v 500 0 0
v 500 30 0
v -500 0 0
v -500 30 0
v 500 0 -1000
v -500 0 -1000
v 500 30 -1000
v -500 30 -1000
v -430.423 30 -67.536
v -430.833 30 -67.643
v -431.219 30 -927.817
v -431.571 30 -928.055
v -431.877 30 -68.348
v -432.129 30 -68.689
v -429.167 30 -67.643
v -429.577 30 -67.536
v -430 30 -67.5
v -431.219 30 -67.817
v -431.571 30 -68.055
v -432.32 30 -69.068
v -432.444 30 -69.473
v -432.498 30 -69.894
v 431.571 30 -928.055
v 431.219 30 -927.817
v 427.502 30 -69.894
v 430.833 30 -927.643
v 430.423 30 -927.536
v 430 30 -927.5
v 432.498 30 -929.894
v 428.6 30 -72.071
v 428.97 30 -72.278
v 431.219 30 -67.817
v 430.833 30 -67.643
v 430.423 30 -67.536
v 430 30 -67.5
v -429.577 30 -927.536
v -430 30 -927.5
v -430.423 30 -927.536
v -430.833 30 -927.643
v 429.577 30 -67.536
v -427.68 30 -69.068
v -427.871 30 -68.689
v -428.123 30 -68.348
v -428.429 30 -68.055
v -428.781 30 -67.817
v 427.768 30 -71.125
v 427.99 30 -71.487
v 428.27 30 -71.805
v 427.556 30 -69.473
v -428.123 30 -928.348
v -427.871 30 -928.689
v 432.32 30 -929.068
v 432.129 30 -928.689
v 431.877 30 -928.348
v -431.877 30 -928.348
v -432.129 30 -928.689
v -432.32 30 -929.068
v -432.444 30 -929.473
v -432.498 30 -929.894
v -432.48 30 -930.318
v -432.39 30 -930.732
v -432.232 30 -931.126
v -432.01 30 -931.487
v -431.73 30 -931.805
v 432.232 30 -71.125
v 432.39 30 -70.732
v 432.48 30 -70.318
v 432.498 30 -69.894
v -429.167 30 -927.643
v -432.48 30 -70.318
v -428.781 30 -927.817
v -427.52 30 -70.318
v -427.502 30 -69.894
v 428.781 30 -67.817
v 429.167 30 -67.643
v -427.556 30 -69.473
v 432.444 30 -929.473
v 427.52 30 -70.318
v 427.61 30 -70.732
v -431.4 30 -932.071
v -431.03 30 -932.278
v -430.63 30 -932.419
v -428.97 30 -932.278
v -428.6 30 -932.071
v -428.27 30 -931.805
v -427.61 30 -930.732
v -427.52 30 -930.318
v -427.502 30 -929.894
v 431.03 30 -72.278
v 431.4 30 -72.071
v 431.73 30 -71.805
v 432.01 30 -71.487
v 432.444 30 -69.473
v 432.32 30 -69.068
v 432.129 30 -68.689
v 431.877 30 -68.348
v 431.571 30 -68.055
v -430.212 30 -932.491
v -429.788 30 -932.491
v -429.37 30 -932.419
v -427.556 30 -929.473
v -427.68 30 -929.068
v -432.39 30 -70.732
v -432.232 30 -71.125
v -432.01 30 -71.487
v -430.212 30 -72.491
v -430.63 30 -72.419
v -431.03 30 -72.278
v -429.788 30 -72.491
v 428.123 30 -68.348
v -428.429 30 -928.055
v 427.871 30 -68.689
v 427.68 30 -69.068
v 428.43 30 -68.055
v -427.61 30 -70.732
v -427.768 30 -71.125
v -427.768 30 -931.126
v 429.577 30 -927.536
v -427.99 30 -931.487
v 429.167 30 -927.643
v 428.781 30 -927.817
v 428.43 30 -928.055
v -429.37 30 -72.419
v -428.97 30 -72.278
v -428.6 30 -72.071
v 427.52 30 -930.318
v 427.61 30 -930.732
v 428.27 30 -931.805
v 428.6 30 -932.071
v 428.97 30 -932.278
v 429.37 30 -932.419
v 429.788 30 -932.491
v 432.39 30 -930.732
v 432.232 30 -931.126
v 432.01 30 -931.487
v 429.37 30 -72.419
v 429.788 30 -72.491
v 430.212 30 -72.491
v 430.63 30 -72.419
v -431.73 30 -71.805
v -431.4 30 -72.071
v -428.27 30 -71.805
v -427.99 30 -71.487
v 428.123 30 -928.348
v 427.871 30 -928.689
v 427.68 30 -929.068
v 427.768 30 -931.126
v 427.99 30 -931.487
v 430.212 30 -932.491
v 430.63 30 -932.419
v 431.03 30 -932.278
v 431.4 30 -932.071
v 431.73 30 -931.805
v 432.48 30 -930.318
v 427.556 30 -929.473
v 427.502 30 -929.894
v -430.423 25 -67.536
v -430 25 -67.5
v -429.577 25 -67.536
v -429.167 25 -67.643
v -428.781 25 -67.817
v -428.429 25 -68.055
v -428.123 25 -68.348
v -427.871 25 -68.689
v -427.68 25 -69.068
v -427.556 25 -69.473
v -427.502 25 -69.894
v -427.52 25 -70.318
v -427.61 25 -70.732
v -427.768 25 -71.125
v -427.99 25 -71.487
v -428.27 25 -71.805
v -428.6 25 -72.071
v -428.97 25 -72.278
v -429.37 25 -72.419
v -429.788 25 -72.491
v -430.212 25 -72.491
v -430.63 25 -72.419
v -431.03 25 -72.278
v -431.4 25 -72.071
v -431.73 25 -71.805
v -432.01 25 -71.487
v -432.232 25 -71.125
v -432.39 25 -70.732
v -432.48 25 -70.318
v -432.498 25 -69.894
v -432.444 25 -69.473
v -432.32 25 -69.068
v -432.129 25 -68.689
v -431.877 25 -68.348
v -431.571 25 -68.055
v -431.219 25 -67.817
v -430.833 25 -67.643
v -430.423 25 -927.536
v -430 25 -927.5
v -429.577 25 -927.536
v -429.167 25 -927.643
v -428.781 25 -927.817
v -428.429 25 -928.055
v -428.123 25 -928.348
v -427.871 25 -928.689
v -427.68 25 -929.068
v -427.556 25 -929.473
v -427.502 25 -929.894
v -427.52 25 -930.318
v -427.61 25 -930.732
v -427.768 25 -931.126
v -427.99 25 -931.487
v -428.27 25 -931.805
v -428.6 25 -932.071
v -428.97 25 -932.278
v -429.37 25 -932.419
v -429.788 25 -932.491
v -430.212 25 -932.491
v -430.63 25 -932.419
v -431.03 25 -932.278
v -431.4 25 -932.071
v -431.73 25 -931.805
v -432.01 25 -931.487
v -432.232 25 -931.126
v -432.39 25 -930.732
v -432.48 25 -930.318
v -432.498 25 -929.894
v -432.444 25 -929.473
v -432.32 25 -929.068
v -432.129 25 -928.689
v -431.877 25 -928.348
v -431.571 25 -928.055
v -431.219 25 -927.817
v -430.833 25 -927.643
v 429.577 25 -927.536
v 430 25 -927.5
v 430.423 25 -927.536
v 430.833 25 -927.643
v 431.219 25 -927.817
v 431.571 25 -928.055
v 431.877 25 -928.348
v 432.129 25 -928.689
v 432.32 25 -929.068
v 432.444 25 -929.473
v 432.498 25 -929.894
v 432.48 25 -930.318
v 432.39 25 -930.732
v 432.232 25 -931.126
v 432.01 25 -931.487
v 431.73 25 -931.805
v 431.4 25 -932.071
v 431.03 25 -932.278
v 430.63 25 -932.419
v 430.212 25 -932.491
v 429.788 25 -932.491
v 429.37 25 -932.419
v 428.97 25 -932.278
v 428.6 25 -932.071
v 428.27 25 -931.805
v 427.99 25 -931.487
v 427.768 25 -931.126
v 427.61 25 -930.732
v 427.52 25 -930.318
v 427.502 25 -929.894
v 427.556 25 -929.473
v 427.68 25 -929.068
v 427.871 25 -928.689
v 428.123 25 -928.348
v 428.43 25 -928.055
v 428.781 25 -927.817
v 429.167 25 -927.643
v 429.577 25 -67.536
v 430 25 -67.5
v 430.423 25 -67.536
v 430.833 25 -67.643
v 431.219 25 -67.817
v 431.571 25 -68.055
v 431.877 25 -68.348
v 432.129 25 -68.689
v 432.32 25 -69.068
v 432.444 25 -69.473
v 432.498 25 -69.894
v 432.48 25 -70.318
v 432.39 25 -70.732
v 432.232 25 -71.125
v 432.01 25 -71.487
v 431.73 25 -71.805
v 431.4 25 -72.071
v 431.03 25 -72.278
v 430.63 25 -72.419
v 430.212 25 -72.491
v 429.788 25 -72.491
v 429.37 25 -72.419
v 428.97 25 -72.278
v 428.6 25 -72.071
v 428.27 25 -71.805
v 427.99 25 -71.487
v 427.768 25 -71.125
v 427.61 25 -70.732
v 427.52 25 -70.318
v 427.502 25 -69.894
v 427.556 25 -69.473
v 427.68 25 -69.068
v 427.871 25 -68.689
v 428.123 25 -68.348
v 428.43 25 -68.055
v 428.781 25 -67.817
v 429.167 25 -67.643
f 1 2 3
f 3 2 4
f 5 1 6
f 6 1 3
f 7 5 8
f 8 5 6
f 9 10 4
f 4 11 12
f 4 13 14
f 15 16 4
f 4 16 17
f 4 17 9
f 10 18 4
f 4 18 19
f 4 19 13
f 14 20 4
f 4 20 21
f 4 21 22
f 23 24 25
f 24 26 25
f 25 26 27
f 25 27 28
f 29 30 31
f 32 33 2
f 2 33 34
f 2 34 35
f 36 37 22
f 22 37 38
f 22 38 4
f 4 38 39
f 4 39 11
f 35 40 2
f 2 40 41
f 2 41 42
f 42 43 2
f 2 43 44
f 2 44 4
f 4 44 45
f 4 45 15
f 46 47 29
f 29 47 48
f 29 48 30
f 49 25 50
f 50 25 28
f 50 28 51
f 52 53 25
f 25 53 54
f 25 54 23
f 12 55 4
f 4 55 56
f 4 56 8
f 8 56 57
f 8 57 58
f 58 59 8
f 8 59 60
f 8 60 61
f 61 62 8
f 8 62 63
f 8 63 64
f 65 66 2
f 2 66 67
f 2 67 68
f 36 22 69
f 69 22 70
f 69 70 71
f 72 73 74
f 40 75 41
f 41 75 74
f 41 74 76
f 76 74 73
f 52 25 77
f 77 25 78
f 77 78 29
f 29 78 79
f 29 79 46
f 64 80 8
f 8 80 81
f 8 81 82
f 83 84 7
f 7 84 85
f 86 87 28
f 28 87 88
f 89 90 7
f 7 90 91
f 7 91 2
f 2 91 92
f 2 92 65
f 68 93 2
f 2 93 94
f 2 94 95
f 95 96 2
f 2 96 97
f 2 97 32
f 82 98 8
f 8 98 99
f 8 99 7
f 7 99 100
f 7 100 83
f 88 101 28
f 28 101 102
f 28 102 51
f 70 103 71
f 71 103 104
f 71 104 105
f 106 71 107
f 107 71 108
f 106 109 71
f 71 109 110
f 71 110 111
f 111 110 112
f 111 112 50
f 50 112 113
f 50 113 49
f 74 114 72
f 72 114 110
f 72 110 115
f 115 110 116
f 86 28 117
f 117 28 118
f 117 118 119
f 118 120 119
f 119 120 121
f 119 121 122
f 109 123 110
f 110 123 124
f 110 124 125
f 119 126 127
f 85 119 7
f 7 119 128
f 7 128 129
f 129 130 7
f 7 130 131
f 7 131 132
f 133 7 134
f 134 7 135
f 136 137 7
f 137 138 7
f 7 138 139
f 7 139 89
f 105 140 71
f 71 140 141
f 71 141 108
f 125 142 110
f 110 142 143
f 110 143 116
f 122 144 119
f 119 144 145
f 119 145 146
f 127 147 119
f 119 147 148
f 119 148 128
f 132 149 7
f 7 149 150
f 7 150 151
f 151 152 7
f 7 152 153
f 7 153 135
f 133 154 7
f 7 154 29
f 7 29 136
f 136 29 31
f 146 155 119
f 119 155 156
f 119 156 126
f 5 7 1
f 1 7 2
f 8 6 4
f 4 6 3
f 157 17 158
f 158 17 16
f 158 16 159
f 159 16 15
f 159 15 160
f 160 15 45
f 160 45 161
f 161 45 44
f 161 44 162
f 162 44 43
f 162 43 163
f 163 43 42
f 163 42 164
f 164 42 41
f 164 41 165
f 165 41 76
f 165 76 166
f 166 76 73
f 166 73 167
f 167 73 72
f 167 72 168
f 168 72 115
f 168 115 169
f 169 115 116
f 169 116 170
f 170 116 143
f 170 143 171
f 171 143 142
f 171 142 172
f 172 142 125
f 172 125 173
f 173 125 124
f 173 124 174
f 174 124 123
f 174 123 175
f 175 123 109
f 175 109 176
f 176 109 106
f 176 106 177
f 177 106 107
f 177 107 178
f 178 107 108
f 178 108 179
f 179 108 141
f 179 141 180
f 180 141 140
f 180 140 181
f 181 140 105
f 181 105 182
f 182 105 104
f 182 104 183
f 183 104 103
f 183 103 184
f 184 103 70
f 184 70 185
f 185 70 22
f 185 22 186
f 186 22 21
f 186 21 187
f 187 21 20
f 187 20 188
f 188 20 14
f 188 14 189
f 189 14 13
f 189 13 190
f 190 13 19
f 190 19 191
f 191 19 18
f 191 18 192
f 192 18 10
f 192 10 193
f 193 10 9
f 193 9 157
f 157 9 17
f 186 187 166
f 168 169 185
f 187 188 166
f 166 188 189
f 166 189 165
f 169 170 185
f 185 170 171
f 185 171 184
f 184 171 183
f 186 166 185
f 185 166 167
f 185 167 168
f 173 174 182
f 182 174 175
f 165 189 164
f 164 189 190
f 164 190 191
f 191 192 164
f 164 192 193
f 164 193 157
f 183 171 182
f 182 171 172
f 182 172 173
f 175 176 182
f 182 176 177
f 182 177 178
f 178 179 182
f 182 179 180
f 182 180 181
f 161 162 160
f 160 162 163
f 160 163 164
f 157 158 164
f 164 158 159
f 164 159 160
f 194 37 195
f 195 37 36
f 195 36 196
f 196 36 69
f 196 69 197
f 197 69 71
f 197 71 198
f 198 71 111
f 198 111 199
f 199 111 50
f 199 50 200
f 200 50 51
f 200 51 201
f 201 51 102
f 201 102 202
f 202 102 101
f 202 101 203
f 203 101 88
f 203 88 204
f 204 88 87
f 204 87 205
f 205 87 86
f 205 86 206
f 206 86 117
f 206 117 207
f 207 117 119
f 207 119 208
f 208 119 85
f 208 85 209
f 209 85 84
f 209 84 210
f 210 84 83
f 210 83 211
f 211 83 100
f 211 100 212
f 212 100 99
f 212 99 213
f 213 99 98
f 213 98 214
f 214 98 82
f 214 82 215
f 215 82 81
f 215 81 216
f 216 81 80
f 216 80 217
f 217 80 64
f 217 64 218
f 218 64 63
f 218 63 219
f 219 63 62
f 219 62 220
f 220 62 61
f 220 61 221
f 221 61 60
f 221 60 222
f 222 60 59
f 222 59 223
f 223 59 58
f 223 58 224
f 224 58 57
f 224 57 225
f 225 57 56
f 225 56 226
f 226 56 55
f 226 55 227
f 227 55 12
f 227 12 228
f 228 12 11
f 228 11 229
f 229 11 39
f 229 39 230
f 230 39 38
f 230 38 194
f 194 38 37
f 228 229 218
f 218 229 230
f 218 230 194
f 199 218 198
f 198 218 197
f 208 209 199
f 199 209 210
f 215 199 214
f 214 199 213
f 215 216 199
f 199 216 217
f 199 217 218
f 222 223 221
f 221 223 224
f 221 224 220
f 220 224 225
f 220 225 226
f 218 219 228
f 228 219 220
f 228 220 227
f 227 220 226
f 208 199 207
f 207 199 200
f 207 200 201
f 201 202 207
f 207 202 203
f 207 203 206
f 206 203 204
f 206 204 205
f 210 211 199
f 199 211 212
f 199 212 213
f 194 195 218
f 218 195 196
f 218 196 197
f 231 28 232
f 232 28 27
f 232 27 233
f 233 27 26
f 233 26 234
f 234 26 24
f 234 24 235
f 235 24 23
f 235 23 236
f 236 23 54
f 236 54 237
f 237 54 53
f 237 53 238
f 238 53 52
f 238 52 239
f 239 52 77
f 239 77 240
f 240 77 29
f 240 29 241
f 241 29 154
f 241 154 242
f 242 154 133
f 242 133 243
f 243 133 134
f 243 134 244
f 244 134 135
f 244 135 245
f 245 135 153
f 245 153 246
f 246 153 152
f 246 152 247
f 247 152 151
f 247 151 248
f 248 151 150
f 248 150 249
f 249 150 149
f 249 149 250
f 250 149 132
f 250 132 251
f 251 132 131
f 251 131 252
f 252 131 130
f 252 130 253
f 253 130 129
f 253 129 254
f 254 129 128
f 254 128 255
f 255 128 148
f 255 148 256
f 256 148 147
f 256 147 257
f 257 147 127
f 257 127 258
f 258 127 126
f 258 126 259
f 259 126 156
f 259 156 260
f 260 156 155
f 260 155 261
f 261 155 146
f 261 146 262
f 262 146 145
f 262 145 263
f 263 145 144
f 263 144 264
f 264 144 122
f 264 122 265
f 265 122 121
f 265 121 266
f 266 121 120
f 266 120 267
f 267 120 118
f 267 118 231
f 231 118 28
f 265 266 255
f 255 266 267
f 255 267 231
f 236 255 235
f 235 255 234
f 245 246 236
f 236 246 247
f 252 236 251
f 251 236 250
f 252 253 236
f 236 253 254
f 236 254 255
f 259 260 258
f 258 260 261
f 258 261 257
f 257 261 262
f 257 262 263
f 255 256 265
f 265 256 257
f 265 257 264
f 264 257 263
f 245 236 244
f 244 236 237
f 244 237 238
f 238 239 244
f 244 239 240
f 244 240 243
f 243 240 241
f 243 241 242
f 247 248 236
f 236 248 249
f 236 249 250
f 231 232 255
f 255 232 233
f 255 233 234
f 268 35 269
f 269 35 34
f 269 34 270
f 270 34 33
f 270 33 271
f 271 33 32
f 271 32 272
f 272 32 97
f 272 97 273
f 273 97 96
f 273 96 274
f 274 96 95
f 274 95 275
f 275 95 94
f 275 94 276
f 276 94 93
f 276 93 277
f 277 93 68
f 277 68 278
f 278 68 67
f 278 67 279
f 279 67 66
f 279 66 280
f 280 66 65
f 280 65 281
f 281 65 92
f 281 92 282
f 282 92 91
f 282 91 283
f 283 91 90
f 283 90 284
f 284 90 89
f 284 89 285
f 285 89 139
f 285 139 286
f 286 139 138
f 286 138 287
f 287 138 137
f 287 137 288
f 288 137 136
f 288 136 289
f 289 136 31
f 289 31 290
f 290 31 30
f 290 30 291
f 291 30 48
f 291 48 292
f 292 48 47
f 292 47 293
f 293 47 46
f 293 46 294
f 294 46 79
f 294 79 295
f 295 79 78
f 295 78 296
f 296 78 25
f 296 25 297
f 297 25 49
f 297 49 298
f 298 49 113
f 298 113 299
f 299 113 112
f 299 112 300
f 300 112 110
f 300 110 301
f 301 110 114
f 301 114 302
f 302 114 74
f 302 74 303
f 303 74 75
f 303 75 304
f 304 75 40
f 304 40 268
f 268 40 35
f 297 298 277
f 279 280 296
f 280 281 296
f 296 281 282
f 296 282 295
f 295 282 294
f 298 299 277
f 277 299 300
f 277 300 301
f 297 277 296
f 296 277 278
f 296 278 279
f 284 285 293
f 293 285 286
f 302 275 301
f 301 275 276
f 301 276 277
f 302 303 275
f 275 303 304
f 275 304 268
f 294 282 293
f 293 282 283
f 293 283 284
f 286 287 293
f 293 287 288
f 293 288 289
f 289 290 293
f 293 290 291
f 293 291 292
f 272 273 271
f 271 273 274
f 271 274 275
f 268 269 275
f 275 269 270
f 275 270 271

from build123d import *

# Parameters (mm, degrees)
SKETCH1_W           = 1000
SKETCH1_H           = 30
BOSS_EXTRUDE1_DEPTH = 500
SKETCH2_R           = 2.5
CUT_EXTRUDE2_DEPTH  = 5


with BuildPart() as part:
    # Sketch1 → Boss-Extrude1 (new body, symmetric)
    with BuildSketch(Plane(origin=(0, 0, 0), x_dir=(0, 0, -1), z_dir=(1, 0, 0))):
        with Locations((500, 15)):
            Rectangle(SKETCH1_W, SKETCH1_H)
    extrude(amount=BOSS_EXTRUDE1_DEPTH, both=True)

    # Sketch2 → Cut-Extrude2 (cut)
    with BuildSketch(Plane(origin=(0, 30, 0), x_dir=(1, 0, 0), z_dir=(0, 1, 0))):
        with Locations((-430, 70)):
            Circle(SKETCH2_R)
        with Locations((-430, 930)):
            Circle(SKETCH2_R)
        with Locations((430, 930)):
            Circle(SKETCH2_R)
        with Locations((430, 70)):
            Circle(SKETCH2_R)
    extrude(amount=-CUT_EXTRUDE2_DEPTH, mode=Mode.SUBTRACT)


solid = part.part
